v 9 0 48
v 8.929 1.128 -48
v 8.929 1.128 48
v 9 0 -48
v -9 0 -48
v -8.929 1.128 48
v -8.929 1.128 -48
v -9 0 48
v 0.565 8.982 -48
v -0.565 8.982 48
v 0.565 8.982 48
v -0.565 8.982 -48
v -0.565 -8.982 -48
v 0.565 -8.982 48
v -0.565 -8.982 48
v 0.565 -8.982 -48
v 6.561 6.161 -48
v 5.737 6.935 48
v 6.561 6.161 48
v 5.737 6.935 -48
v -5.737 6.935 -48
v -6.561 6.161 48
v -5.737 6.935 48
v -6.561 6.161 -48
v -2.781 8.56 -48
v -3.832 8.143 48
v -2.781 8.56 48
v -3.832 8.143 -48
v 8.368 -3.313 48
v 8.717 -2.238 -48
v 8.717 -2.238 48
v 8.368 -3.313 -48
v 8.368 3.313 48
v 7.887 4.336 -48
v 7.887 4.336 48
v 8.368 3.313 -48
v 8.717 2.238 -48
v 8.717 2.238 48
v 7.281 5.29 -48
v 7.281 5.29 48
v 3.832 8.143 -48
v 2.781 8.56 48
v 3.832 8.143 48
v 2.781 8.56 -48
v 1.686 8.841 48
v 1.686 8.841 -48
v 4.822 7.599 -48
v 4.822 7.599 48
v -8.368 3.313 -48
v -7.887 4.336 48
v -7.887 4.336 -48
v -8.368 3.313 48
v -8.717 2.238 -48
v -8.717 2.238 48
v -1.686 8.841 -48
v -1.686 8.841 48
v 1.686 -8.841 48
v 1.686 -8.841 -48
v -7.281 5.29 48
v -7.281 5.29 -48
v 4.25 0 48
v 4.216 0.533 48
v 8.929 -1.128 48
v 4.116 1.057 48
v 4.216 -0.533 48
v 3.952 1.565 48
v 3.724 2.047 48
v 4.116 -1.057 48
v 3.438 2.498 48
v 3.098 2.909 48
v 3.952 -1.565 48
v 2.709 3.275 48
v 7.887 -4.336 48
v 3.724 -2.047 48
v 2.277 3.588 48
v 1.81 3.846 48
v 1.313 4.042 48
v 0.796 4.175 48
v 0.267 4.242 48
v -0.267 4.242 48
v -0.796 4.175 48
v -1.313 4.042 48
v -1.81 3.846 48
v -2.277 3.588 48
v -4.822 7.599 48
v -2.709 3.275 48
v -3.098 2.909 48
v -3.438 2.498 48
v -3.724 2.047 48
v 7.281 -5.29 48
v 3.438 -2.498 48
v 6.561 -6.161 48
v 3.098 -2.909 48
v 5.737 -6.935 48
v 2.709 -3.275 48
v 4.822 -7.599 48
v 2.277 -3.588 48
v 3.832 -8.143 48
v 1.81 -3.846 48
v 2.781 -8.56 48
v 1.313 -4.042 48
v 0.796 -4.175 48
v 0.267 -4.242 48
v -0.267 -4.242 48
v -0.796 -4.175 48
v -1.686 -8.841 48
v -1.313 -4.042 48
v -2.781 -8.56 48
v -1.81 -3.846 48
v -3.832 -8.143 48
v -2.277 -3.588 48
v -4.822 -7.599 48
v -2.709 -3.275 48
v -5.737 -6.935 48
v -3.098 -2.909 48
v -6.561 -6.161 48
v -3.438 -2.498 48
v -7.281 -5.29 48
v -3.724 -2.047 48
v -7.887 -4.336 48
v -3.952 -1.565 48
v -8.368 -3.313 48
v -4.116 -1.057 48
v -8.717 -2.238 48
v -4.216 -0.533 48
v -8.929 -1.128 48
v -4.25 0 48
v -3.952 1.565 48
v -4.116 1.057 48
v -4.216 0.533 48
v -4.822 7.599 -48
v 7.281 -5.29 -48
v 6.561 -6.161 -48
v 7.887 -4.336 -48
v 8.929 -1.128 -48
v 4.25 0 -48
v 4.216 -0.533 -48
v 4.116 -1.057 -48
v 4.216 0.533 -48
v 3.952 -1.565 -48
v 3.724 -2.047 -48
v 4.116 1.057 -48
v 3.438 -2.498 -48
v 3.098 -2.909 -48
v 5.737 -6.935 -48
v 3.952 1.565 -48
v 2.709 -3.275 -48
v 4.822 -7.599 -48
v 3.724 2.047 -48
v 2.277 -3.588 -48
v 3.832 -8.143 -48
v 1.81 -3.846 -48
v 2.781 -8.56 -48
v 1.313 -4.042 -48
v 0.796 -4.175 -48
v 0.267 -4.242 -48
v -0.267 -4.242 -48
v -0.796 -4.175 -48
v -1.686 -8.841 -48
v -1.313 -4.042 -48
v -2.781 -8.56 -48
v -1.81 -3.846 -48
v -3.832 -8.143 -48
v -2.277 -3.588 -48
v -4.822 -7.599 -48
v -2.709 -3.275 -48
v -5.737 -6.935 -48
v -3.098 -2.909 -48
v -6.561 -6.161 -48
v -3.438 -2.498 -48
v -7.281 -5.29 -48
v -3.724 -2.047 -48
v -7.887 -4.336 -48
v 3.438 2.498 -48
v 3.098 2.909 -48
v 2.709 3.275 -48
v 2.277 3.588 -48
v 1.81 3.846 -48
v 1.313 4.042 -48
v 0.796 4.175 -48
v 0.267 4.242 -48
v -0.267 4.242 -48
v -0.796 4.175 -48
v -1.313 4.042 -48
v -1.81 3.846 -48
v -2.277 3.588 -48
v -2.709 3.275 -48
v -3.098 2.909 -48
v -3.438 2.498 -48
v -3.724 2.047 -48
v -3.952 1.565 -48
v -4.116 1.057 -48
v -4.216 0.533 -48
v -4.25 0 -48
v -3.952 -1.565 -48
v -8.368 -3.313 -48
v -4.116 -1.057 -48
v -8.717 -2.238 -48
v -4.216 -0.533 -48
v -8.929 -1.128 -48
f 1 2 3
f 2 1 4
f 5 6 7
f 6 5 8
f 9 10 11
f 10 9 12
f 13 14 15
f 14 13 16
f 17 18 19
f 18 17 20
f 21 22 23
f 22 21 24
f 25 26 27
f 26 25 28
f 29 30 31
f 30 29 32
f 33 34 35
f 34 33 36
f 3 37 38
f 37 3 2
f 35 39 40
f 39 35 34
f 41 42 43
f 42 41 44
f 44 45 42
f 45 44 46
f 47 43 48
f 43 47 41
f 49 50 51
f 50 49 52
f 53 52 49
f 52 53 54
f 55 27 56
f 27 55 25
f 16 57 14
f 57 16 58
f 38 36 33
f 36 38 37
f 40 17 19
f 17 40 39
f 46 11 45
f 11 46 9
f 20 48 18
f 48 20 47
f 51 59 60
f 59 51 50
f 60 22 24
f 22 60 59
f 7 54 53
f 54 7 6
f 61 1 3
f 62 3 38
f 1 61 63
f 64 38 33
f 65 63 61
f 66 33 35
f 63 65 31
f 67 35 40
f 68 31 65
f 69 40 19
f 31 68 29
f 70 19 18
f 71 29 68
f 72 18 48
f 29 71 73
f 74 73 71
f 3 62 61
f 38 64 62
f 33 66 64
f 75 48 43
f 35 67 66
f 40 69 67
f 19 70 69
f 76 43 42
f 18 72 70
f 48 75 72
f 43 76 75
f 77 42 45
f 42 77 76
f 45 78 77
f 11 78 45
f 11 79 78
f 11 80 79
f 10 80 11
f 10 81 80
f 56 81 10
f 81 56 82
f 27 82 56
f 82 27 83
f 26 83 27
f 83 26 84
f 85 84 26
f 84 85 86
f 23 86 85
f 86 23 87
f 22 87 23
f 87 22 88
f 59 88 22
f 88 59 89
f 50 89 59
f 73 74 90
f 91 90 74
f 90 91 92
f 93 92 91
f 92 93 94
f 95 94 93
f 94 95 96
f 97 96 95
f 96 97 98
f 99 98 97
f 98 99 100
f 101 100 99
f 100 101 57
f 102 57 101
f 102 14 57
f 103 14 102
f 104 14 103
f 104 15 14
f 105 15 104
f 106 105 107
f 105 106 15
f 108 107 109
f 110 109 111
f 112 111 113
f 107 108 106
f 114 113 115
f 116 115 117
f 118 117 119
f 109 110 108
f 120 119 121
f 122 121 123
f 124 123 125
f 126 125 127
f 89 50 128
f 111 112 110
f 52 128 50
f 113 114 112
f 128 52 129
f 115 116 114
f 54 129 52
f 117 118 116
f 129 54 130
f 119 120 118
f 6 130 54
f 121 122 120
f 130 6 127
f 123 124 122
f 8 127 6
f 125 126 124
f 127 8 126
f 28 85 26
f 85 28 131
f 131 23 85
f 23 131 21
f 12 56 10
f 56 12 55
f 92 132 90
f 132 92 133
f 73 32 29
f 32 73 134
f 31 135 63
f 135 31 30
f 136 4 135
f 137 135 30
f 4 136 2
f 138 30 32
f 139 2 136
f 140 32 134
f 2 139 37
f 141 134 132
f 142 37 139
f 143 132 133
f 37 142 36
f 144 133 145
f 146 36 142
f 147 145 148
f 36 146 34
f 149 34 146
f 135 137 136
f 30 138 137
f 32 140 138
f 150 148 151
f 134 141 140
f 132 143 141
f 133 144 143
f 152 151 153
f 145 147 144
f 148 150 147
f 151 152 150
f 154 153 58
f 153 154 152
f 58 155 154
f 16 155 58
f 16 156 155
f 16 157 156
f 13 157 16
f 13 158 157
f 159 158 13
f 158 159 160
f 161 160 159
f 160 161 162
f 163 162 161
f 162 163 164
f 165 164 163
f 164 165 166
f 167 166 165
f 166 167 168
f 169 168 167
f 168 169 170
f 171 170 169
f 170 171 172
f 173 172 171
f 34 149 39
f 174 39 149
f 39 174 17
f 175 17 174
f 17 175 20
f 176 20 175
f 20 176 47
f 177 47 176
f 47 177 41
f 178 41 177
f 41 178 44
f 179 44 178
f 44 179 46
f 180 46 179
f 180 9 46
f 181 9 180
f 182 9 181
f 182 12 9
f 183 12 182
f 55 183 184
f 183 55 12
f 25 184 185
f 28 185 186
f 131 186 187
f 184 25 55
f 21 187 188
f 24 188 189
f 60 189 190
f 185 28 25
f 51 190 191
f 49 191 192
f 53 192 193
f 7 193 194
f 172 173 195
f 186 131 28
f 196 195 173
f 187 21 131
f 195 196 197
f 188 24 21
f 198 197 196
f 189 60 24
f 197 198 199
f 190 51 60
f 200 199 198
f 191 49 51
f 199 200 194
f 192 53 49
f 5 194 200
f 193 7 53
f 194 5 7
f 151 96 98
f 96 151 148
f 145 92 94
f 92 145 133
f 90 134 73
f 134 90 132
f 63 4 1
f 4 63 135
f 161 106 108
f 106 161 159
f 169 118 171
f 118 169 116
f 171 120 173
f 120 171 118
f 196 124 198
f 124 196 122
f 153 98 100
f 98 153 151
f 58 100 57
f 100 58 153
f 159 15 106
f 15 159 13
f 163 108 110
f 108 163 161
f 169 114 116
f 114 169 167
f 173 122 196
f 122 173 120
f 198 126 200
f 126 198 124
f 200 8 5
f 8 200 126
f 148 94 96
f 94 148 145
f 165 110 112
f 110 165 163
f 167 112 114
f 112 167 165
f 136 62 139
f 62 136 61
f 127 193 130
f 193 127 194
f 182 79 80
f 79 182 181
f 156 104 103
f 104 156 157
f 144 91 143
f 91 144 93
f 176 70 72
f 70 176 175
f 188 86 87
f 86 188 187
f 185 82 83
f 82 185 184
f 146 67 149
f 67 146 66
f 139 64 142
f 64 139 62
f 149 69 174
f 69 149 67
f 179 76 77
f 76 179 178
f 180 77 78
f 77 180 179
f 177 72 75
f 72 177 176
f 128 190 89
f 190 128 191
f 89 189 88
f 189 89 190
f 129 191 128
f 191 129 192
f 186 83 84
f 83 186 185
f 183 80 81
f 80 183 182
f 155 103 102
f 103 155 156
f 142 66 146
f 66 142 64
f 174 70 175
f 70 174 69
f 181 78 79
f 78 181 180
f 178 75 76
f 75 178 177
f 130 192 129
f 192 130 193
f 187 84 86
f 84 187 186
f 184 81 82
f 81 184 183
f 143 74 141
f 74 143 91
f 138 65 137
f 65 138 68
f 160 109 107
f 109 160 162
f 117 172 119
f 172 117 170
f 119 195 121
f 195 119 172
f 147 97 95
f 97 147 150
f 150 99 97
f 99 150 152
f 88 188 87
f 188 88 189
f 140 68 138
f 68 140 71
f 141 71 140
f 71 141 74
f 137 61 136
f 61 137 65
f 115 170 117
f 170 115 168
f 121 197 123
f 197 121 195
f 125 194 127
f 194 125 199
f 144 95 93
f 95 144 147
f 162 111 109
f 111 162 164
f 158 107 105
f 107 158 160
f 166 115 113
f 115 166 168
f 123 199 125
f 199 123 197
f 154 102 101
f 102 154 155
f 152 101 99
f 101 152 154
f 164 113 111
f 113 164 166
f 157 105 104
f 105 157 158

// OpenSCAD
$fn = 50;


difference() {
	union() {
		translate(v = [0, 0, -48.0000000000]) {
			cylinder(h = 96, r = 9.0000000000);
		}
	}
	union() {
		translate(v = [0, 0, -100.0000000000]) {
			cylinder(h = 200, r = 4.2500000000);
		}
	}
}
